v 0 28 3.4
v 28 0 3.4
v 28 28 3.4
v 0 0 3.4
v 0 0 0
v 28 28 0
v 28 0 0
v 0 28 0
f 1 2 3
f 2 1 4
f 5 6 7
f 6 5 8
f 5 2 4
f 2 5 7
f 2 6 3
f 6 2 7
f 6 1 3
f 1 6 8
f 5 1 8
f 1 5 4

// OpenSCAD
/* Warning, this is a very basic generator with a lot of approximation 
input data : [PQFP, KNB, 28x28x3.4mm, 208, , A, C04-21294A]
generated by com.zoubworld.electronics.cad.model3d.Basic
Date : Sun Feb 15 10:50:49 CET 2026
*/

//body
color("black")
translate([0,0,0])
cube([28.0,28.0,3.4], center=false);
